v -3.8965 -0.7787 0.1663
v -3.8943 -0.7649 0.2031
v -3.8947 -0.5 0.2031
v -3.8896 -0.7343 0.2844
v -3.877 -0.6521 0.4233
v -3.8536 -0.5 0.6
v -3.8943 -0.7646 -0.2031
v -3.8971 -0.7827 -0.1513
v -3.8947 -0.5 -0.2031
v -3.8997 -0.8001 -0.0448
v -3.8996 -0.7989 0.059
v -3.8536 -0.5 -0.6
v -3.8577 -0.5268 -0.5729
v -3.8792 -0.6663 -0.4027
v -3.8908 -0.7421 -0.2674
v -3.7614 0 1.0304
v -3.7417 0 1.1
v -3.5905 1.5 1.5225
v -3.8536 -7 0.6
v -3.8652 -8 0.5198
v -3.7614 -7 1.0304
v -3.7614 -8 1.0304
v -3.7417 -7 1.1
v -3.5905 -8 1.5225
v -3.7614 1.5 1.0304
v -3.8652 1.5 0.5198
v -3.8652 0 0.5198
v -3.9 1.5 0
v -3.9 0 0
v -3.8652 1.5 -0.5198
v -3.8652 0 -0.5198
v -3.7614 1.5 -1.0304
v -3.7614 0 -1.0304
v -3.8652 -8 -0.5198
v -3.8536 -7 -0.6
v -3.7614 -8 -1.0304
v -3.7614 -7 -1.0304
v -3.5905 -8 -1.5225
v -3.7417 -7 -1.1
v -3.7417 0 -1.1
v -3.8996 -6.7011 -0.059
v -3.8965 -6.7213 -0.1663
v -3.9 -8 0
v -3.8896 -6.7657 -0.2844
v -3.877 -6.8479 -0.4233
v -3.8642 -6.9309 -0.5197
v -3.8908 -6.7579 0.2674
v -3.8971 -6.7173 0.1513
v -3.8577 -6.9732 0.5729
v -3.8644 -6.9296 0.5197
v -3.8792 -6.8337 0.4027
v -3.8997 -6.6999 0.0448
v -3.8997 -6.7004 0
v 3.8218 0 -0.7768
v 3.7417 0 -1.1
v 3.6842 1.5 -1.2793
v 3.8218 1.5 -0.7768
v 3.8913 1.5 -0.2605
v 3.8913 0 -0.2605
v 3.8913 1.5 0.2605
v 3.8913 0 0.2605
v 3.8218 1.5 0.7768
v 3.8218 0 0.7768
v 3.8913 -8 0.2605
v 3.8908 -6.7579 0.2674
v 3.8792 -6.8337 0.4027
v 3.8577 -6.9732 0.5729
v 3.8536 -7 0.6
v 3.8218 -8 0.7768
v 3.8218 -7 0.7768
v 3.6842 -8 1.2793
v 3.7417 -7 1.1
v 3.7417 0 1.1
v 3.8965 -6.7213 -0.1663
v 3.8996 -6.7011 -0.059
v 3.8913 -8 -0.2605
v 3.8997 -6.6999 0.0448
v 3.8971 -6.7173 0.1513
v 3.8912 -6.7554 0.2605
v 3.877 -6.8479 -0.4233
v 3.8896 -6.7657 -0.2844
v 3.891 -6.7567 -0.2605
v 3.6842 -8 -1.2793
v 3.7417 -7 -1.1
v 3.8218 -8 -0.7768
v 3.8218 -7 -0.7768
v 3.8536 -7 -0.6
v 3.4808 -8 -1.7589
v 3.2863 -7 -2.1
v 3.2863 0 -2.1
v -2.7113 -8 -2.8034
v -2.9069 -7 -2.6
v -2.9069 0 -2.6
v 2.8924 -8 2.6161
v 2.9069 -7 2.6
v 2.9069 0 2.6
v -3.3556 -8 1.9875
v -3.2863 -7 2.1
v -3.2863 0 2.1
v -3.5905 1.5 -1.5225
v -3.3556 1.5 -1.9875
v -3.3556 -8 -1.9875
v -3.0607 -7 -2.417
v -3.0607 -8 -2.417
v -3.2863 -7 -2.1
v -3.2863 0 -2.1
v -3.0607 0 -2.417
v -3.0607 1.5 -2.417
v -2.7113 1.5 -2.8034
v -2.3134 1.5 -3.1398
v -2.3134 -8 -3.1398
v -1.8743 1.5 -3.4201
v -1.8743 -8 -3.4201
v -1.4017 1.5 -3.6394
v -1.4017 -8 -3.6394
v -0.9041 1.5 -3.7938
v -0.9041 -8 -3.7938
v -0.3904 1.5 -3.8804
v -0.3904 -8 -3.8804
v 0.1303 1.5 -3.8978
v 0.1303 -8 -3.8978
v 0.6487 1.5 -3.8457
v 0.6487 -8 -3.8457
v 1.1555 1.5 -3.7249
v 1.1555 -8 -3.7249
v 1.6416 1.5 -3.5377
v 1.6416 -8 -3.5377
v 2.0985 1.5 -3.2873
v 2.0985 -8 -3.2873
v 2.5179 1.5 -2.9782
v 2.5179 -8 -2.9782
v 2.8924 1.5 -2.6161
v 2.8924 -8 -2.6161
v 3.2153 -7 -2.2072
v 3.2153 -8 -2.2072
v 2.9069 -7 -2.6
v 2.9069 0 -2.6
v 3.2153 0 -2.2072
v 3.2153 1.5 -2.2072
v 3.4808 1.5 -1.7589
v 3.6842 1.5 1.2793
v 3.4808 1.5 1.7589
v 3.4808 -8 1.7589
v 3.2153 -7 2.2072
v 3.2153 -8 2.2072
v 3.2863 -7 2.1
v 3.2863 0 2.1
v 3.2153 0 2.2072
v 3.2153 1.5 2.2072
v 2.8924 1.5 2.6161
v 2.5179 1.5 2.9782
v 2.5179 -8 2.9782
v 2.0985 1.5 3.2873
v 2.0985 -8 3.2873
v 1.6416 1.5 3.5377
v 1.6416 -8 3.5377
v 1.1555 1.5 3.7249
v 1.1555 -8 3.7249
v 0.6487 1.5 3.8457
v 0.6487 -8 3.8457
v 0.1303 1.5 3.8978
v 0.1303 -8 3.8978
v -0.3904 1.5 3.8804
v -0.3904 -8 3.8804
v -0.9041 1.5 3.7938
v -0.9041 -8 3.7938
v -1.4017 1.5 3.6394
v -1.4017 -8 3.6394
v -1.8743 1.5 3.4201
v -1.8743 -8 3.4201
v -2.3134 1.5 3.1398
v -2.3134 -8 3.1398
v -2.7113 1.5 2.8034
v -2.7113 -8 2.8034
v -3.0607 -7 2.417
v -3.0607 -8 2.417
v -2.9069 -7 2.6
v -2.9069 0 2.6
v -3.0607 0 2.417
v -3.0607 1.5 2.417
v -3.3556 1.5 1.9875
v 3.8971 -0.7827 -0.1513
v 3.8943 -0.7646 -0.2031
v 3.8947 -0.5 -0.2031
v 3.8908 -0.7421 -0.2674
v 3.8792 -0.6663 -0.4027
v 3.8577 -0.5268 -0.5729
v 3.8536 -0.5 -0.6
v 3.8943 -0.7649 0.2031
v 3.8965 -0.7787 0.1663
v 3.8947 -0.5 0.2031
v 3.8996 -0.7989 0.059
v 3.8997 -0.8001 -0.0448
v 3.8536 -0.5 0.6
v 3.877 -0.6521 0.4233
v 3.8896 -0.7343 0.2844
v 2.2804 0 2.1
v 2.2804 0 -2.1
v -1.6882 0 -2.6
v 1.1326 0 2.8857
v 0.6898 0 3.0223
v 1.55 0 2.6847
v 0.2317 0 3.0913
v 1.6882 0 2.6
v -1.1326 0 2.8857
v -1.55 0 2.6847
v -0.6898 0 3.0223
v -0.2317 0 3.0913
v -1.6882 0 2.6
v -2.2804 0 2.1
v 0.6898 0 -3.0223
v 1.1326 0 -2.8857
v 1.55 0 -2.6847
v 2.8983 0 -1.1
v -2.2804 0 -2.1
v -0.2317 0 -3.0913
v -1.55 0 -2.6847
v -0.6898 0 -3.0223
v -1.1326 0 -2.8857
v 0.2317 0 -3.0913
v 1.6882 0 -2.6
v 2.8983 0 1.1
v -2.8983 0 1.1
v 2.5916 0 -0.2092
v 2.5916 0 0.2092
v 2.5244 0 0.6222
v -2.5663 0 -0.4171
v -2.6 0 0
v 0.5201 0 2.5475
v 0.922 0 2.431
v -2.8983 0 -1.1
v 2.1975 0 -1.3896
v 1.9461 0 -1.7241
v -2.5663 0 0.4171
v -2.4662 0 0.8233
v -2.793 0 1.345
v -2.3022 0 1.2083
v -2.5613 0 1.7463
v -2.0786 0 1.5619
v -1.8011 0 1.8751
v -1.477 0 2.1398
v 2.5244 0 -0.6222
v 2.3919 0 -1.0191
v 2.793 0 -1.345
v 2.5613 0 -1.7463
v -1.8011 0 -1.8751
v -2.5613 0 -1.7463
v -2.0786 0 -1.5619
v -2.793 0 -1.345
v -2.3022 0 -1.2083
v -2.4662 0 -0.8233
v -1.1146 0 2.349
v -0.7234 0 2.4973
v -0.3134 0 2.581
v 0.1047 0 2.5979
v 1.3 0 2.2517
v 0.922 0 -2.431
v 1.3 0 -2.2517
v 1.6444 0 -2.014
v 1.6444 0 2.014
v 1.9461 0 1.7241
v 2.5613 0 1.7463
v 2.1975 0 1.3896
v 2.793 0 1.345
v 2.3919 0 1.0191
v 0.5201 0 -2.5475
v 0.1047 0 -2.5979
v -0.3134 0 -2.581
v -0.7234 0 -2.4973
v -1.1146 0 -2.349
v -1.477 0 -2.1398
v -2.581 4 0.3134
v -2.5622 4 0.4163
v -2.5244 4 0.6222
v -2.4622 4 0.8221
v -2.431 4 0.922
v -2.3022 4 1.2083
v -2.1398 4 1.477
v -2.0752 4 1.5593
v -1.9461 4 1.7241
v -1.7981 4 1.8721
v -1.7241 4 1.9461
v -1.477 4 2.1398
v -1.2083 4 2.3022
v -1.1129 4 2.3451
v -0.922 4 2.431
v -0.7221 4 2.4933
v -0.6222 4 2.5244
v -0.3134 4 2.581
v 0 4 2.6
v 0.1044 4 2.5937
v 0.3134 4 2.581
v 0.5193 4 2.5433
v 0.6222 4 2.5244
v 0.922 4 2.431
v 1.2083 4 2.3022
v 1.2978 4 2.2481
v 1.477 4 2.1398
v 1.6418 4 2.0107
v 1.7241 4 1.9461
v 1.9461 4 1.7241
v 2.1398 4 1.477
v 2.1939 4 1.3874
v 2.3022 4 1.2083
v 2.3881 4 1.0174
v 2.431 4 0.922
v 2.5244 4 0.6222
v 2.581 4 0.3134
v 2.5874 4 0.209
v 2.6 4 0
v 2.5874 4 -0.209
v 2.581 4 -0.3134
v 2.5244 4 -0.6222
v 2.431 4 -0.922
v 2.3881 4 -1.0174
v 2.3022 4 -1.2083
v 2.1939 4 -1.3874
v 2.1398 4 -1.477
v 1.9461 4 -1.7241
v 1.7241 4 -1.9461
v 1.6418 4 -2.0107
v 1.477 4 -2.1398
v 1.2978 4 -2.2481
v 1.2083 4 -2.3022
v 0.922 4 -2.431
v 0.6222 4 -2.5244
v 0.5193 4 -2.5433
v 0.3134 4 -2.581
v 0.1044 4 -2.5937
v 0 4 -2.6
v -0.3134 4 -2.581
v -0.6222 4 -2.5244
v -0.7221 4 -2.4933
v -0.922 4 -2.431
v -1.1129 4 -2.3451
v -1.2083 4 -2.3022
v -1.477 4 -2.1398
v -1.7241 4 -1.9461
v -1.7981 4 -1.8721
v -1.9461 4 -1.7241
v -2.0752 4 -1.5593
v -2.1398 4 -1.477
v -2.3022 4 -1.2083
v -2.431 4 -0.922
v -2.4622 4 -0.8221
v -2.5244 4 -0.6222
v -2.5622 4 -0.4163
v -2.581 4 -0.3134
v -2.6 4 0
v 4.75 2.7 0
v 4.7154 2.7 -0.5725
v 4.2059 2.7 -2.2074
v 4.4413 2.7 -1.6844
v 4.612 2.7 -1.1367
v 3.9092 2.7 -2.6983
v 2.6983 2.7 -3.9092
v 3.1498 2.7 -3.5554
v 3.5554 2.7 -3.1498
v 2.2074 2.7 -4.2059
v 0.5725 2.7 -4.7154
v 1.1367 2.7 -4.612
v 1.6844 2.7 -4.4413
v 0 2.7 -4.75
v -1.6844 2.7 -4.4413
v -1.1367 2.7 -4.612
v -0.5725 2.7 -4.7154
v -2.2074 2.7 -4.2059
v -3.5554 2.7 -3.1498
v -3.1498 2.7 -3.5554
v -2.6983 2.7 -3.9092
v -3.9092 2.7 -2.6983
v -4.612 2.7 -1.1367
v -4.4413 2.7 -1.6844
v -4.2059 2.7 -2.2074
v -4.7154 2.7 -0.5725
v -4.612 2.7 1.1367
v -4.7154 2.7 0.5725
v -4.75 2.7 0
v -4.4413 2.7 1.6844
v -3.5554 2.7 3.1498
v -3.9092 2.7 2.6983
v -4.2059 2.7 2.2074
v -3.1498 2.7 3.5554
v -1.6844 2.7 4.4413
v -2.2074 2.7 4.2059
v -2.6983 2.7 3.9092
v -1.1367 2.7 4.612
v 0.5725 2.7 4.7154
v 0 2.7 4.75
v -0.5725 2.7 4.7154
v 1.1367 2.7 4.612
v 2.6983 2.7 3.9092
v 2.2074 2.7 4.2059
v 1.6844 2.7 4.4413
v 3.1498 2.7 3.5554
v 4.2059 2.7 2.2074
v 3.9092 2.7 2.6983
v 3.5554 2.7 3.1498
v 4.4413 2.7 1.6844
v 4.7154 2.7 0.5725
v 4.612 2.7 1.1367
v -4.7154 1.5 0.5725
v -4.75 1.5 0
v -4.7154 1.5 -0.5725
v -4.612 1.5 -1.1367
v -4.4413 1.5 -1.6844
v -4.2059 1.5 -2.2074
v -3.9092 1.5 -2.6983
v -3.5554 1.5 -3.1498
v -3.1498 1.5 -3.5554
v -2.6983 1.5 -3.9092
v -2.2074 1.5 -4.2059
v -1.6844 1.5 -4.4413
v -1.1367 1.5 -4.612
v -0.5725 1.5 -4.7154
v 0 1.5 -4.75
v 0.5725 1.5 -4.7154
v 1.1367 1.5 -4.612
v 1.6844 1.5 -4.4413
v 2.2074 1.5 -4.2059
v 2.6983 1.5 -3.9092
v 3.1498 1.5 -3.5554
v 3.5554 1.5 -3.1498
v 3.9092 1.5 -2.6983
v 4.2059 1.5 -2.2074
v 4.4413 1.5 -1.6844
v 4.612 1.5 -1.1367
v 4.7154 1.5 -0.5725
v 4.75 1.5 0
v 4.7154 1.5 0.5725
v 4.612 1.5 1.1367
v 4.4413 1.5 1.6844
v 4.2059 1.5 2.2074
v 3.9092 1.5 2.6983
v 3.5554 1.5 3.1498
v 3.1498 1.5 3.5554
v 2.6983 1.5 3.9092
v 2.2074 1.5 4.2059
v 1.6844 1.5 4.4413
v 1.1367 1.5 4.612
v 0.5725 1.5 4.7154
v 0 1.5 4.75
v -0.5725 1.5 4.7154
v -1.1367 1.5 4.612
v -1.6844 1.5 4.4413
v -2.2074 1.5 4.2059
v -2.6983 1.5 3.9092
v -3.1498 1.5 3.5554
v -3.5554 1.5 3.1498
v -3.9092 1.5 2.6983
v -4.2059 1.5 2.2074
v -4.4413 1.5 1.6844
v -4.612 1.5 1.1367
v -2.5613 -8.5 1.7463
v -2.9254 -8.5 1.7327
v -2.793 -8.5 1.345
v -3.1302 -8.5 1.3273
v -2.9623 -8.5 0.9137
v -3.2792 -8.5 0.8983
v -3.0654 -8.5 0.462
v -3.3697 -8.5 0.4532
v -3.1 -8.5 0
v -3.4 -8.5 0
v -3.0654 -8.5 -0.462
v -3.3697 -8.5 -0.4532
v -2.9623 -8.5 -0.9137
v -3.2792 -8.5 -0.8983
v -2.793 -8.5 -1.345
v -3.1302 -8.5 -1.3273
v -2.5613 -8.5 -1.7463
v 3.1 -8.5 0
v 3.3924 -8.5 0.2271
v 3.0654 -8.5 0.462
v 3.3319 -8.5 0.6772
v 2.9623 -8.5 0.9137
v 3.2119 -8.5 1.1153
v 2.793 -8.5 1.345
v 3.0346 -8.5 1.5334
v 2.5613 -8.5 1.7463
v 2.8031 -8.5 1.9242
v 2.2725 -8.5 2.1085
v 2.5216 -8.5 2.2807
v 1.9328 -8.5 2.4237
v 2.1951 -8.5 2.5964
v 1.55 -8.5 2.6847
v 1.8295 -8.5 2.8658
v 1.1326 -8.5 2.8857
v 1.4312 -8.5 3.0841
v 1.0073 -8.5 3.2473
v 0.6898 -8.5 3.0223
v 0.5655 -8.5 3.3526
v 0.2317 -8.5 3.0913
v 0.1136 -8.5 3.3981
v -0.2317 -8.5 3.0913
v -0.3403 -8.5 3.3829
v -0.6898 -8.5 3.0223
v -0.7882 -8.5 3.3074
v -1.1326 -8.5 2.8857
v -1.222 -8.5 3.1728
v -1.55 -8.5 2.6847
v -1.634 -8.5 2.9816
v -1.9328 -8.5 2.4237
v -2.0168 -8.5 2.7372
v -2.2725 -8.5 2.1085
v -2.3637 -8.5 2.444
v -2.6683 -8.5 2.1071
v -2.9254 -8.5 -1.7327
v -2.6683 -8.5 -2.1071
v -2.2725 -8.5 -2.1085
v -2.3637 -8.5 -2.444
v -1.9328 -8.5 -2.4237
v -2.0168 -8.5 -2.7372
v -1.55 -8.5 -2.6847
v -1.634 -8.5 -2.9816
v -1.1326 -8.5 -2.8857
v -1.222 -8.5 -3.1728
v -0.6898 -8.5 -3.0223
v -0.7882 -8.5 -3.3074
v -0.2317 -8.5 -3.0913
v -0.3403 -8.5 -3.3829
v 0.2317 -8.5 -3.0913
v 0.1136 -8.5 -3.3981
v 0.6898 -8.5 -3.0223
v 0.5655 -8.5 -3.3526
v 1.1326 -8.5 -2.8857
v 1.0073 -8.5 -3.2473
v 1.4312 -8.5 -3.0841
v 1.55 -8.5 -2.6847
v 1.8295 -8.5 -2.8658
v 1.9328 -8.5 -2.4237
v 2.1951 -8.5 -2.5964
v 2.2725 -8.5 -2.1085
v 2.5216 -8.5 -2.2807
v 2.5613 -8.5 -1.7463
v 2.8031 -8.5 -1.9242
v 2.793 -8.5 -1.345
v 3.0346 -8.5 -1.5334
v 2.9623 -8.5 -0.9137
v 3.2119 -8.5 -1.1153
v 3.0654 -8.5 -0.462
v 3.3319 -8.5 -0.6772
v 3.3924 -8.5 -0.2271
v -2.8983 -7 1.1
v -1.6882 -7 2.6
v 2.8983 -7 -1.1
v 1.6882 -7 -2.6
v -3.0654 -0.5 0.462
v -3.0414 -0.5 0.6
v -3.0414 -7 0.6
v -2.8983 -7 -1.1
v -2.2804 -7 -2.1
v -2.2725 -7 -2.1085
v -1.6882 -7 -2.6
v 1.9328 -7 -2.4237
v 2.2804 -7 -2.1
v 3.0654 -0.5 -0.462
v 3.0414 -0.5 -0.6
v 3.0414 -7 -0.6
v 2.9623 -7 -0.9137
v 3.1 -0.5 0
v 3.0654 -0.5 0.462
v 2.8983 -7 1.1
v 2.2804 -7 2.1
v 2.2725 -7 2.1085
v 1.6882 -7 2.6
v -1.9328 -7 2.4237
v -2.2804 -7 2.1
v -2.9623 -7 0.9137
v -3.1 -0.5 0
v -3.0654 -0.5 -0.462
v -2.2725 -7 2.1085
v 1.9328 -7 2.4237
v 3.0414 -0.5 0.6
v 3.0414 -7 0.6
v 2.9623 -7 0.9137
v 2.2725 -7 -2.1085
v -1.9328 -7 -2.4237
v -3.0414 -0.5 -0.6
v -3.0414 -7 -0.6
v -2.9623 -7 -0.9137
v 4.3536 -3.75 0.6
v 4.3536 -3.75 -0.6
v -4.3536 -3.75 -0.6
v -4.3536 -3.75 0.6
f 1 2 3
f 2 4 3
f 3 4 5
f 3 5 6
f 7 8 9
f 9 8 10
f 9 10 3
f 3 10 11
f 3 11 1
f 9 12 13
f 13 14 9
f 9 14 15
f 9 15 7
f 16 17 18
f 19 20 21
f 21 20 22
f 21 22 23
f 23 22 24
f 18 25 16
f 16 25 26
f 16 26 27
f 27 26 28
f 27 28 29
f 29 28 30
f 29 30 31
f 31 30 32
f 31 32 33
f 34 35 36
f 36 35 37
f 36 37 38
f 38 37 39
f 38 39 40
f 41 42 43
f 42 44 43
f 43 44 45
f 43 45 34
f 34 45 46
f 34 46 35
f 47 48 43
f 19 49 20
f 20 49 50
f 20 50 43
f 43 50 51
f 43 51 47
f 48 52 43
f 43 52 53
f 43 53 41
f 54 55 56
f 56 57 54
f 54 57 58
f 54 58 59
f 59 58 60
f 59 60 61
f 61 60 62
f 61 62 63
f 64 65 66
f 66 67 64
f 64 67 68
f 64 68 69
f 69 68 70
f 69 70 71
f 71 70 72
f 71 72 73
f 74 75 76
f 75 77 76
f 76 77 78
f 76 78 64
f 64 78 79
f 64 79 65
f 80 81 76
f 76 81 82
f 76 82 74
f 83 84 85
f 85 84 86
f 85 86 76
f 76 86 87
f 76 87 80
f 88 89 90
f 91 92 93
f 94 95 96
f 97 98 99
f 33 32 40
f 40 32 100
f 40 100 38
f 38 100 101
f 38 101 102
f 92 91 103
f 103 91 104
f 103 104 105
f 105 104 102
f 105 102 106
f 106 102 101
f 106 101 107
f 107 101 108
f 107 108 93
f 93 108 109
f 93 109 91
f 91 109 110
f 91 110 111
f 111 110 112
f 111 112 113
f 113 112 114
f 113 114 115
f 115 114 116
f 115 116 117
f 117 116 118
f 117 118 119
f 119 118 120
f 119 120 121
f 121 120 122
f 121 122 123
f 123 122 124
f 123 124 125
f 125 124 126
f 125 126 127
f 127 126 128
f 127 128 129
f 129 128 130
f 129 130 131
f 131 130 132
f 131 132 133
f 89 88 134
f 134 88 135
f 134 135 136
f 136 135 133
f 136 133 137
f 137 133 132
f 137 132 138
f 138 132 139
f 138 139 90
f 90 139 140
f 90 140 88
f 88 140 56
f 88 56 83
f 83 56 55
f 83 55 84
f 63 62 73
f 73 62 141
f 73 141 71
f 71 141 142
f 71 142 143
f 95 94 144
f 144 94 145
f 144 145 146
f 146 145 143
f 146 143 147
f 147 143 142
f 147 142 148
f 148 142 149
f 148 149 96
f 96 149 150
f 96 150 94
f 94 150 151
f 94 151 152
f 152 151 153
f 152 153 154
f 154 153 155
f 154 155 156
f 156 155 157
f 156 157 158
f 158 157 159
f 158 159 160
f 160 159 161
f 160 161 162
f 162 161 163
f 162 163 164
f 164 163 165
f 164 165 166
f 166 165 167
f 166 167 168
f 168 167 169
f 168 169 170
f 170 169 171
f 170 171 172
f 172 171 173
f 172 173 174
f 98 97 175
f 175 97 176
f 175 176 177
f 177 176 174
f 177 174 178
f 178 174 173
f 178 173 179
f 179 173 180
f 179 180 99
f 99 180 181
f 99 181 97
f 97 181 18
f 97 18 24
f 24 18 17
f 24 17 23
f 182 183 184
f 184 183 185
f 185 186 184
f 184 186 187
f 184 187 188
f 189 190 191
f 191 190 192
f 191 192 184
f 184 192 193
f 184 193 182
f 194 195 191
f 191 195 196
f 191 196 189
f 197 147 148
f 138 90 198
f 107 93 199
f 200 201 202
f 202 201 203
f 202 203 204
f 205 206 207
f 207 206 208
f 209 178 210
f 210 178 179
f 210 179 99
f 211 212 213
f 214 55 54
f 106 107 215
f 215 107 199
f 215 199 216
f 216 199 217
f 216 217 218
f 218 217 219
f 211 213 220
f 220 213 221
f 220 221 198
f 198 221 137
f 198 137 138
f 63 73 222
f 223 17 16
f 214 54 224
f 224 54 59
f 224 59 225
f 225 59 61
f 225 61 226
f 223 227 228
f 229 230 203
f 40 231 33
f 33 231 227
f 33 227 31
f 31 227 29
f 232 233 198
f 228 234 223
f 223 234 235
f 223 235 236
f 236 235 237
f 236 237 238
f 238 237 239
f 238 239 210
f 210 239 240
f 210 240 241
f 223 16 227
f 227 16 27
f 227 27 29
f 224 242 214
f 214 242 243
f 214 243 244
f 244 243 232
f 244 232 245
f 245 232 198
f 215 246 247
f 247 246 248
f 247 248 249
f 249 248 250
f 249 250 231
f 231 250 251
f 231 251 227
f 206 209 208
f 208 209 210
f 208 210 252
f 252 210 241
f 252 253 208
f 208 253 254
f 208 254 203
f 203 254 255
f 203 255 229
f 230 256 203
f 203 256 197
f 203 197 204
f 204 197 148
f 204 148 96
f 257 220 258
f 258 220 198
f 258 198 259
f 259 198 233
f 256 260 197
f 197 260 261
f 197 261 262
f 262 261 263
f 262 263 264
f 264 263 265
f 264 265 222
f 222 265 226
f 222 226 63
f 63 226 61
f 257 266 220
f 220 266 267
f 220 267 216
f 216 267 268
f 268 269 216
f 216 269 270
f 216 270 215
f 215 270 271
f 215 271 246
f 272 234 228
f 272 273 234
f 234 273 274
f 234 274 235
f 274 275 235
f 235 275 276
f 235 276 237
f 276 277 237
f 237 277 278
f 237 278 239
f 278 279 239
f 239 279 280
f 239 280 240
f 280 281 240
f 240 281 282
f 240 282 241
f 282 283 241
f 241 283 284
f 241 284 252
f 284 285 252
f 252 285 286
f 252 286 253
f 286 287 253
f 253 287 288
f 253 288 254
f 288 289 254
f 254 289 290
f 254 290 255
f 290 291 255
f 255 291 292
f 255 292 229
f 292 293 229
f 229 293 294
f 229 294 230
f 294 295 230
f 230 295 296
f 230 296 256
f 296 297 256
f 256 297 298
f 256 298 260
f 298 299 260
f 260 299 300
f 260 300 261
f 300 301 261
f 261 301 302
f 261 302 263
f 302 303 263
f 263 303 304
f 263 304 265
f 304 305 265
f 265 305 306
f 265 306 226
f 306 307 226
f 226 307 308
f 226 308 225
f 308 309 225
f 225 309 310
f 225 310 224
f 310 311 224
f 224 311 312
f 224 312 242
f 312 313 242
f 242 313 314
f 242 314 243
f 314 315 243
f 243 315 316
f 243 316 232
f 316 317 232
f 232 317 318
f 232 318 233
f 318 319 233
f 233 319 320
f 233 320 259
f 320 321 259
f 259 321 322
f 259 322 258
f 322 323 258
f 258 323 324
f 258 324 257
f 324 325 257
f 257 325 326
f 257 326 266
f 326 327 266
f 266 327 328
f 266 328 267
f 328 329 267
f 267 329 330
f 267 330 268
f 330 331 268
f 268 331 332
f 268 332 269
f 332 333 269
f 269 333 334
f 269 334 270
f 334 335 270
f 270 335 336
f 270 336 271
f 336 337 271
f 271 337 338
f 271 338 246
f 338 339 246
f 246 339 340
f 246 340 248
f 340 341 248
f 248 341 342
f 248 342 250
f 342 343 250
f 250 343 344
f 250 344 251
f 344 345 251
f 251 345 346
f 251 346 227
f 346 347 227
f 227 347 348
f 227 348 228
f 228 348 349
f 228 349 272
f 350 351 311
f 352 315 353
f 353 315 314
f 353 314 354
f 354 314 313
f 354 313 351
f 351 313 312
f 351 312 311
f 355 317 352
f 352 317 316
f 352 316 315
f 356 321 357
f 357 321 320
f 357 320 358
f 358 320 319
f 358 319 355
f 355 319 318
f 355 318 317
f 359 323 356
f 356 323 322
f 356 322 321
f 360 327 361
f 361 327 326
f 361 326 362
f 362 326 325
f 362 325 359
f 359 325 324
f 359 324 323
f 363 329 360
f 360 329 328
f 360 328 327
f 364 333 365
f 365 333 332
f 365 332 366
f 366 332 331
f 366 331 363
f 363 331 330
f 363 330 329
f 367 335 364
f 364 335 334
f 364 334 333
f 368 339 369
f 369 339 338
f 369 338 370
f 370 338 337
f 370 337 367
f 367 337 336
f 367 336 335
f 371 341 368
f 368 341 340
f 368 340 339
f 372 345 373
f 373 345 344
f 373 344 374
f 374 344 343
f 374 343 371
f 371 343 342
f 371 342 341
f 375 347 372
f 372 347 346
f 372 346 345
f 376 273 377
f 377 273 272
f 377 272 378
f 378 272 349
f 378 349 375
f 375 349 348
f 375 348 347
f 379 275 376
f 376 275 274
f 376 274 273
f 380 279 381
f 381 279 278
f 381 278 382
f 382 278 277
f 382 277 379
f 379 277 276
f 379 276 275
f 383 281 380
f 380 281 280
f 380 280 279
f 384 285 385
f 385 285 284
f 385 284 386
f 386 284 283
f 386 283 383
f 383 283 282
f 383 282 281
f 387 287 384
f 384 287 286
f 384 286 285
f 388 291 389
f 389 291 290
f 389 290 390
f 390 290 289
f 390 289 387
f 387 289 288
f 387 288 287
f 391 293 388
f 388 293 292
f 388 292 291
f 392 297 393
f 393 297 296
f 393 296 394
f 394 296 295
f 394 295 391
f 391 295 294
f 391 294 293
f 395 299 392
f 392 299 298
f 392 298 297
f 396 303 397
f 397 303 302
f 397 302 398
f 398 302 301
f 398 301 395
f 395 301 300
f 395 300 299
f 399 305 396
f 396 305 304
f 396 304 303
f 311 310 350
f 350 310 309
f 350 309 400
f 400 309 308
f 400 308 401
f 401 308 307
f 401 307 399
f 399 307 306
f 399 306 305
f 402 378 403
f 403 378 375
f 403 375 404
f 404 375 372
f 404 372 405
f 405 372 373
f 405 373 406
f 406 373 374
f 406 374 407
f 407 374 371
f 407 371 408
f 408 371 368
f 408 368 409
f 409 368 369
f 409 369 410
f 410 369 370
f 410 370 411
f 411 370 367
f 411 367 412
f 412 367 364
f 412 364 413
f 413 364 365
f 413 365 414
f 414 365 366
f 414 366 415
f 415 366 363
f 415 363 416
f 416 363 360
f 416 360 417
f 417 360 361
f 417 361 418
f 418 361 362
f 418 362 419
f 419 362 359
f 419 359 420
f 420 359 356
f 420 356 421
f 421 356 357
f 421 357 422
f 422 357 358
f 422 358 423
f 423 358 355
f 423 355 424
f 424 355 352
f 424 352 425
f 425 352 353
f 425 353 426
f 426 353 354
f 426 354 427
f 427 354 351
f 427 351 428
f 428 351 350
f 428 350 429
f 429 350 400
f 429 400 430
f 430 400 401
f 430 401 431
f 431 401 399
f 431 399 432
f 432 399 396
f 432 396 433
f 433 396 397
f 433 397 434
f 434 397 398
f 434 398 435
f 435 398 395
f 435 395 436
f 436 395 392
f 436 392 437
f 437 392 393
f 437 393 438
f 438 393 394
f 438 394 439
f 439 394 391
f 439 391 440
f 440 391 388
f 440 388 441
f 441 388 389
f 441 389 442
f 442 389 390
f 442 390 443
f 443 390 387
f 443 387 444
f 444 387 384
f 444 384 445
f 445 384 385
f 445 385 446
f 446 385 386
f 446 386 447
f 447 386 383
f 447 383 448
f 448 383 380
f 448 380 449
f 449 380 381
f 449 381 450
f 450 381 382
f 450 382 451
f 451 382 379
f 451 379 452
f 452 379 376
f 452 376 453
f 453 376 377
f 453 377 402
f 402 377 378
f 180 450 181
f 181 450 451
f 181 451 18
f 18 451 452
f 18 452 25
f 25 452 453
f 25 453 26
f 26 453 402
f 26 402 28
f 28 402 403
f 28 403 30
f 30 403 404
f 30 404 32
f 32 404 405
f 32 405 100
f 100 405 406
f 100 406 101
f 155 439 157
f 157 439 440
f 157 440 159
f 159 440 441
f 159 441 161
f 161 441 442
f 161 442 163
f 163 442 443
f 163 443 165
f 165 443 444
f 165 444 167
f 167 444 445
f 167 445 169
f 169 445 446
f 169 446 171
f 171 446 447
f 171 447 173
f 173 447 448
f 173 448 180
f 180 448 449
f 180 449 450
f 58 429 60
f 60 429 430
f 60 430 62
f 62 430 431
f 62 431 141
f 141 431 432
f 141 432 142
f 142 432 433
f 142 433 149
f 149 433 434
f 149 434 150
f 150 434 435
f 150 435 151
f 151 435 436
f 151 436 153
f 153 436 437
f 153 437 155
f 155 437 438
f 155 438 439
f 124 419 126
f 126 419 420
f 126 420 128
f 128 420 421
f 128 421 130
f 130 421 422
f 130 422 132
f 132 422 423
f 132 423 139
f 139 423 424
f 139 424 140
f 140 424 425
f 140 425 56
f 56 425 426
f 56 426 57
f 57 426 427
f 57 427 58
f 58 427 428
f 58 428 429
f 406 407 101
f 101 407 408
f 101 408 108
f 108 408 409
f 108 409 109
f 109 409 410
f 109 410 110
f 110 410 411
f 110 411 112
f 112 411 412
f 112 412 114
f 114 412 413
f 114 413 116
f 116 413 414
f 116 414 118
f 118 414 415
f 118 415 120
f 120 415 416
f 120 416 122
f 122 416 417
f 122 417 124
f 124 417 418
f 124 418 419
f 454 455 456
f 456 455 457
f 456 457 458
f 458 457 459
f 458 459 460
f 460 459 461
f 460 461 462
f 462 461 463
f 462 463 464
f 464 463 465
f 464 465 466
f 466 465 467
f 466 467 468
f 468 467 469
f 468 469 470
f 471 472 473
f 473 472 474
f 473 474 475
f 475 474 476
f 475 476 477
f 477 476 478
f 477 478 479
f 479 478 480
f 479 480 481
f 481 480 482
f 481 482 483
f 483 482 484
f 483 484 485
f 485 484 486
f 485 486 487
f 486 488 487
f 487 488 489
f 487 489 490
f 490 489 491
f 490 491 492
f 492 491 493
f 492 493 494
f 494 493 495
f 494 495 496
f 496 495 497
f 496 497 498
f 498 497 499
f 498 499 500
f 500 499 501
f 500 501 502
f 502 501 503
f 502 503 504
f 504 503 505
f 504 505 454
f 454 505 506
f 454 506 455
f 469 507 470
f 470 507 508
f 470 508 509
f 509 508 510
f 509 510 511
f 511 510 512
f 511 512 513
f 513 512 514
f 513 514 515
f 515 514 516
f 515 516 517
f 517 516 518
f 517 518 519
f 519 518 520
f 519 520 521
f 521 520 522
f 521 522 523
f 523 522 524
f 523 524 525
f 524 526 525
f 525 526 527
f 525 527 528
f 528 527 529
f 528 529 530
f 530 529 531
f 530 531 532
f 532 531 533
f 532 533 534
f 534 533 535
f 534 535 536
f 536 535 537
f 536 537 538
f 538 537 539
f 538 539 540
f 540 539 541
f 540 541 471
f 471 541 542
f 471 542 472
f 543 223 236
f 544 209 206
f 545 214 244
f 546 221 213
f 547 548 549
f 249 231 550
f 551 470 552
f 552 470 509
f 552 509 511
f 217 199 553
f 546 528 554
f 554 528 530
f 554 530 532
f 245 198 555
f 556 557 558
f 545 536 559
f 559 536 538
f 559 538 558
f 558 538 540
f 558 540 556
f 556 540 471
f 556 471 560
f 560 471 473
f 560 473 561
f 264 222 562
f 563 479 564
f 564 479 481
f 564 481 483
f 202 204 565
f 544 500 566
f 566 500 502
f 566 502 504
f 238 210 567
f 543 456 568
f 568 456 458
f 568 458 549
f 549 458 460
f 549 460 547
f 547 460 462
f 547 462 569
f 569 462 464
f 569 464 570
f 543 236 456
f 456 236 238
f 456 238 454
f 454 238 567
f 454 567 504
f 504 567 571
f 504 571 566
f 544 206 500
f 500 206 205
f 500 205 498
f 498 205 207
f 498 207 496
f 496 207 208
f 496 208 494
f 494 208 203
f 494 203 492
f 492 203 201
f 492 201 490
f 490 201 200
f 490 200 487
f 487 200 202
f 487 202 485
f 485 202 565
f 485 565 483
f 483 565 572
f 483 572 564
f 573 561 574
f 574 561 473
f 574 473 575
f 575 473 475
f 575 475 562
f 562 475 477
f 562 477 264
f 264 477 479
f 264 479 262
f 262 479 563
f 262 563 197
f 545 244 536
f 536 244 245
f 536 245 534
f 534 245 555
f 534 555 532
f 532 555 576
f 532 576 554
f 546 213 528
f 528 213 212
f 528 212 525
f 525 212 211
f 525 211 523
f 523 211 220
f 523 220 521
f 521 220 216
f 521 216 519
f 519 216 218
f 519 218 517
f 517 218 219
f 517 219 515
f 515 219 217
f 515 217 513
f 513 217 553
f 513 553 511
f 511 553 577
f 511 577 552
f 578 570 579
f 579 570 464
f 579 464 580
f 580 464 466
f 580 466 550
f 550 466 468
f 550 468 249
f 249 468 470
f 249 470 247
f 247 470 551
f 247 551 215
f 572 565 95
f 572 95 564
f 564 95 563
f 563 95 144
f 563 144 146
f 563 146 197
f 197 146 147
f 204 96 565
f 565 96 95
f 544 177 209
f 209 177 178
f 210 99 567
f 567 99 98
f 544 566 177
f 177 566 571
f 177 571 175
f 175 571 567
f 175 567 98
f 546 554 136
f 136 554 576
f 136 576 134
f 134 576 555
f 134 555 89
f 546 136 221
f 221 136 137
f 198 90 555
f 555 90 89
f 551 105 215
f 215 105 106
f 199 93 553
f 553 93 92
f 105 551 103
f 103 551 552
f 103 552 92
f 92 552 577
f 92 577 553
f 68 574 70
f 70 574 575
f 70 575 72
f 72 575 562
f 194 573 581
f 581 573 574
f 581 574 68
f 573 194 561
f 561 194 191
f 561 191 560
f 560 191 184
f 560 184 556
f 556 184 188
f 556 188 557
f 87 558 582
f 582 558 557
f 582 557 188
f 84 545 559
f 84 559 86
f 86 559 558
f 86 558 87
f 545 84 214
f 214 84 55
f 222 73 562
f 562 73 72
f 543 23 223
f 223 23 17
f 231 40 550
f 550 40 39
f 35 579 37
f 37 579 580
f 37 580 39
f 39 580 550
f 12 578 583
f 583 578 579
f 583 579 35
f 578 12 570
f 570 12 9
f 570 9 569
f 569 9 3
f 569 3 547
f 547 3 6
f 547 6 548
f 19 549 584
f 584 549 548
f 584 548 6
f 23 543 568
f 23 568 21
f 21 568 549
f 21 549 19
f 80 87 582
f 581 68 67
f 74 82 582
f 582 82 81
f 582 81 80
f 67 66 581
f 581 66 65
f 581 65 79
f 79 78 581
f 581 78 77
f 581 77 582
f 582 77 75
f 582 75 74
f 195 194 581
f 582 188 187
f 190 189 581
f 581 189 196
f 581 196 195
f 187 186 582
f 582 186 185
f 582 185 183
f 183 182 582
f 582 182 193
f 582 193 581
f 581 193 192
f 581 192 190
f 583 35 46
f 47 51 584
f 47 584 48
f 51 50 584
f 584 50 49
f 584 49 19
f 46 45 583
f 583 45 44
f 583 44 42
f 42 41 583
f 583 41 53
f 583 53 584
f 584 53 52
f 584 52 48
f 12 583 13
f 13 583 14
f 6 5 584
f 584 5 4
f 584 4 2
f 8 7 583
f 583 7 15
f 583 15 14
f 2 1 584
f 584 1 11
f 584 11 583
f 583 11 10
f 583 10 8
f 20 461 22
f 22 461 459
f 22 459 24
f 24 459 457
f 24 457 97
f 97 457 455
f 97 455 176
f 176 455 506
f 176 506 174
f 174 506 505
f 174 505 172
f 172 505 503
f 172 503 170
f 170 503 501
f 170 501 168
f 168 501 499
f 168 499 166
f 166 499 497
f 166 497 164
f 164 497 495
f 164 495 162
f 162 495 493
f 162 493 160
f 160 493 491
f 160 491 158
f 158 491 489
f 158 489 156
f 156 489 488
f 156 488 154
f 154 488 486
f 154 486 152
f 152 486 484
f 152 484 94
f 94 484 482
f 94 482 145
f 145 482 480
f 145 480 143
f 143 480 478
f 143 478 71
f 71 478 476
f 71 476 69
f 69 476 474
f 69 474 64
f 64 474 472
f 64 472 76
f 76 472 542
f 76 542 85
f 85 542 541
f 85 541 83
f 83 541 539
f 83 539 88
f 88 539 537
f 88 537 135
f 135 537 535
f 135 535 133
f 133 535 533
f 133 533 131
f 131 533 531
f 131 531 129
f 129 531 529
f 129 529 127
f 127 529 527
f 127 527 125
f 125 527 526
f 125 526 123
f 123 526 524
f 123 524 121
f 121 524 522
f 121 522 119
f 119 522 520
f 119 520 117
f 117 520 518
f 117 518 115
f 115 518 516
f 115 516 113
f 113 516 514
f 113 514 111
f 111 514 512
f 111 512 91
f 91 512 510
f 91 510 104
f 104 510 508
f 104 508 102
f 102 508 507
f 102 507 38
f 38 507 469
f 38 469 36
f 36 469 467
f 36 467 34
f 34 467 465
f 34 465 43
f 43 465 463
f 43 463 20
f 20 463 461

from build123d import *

# Parameters (mm, degrees)
SKETCH2_W               = 0.5
SKETCH2_H               = 7
CUT_EXTRUDE1_DEPTH      = 5.75
CUT_EXTRUDE1_DEPTH_BACK = 5.75
BOSS_EXTRUDE1_DEPTH     = 1.2
CHAMFER1_SIZE           = 0.5


with BuildPart() as part:
    # Sketch1 → Revolve1 (revolve)
    with BuildSketch(Plane.XY):
        Polygon((2.6, 0), (2.6, 4), (4.75, 2.7), (4.75, 1.5), (3.9, 1.5), (3.9, -8.5), (3.1, -8.5), (3.1, 0), align=None)
    revolve(axis=Axis((0, 42.244045278, 0), (0, -1, 0)))

    # Sketch2 → Cut-Extrude1 (cut, two sides)
    with BuildSketch(Plane(origin=(0, 0, 0), x_dir=(0, 0, -1), z_dir=(1, 0, 0))) as cut_extrude1_sk:
        Polygon((0.6, -7), (1.1, -7), (1.1, 0), (-1.1, 0), (-1.1, -7), (-0.6, -7), (-0.6, -0.5), (0.6, -0.5), align=None)
        with Locations((-2.35, -3.5)):
            Rectangle(SKETCH2_W, SKETCH2_H)
        with Locations((2.35, -3.5)):
            Rectangle(SKETCH2_W, SKETCH2_H)
    extrude(amount=CUT_EXTRUDE1_DEPTH, mode=Mode.SUBTRACT)
    extrude(cut_extrude1_sk.sketch, amount=-CUT_EXTRUDE1_DEPTH_BACK, mode=Mode.SUBTRACT)

    # Sketch3 → Boss-Extrude1 (add)
    with BuildSketch(Plane.XY.offset(0.6)):
        Polygon((3.853569774, -0.5), (4.353569774, -3.75), (3.853569774, -7), align=None)
    boss_extrude1 = extrude(amount=-BOSS_EXTRUDE1_DEPTH)

    # Mirror1: Boss-Extrude1 across plane
    add(boss_extrude1.mirror(Plane(origin=(0, 0, 0), x_dir=(0, 0, 1), z_dir=(1, 0, 0))))

    # Chamfer1
    chamfer1_edges = [part.edges().sort_by_distance(p)[0] for p in [
        (-3.9, -8.5, 0),
    ]]
    chamfer(chamfer1_edges, length=CHAMFER1_SIZE)


solid = part.part
